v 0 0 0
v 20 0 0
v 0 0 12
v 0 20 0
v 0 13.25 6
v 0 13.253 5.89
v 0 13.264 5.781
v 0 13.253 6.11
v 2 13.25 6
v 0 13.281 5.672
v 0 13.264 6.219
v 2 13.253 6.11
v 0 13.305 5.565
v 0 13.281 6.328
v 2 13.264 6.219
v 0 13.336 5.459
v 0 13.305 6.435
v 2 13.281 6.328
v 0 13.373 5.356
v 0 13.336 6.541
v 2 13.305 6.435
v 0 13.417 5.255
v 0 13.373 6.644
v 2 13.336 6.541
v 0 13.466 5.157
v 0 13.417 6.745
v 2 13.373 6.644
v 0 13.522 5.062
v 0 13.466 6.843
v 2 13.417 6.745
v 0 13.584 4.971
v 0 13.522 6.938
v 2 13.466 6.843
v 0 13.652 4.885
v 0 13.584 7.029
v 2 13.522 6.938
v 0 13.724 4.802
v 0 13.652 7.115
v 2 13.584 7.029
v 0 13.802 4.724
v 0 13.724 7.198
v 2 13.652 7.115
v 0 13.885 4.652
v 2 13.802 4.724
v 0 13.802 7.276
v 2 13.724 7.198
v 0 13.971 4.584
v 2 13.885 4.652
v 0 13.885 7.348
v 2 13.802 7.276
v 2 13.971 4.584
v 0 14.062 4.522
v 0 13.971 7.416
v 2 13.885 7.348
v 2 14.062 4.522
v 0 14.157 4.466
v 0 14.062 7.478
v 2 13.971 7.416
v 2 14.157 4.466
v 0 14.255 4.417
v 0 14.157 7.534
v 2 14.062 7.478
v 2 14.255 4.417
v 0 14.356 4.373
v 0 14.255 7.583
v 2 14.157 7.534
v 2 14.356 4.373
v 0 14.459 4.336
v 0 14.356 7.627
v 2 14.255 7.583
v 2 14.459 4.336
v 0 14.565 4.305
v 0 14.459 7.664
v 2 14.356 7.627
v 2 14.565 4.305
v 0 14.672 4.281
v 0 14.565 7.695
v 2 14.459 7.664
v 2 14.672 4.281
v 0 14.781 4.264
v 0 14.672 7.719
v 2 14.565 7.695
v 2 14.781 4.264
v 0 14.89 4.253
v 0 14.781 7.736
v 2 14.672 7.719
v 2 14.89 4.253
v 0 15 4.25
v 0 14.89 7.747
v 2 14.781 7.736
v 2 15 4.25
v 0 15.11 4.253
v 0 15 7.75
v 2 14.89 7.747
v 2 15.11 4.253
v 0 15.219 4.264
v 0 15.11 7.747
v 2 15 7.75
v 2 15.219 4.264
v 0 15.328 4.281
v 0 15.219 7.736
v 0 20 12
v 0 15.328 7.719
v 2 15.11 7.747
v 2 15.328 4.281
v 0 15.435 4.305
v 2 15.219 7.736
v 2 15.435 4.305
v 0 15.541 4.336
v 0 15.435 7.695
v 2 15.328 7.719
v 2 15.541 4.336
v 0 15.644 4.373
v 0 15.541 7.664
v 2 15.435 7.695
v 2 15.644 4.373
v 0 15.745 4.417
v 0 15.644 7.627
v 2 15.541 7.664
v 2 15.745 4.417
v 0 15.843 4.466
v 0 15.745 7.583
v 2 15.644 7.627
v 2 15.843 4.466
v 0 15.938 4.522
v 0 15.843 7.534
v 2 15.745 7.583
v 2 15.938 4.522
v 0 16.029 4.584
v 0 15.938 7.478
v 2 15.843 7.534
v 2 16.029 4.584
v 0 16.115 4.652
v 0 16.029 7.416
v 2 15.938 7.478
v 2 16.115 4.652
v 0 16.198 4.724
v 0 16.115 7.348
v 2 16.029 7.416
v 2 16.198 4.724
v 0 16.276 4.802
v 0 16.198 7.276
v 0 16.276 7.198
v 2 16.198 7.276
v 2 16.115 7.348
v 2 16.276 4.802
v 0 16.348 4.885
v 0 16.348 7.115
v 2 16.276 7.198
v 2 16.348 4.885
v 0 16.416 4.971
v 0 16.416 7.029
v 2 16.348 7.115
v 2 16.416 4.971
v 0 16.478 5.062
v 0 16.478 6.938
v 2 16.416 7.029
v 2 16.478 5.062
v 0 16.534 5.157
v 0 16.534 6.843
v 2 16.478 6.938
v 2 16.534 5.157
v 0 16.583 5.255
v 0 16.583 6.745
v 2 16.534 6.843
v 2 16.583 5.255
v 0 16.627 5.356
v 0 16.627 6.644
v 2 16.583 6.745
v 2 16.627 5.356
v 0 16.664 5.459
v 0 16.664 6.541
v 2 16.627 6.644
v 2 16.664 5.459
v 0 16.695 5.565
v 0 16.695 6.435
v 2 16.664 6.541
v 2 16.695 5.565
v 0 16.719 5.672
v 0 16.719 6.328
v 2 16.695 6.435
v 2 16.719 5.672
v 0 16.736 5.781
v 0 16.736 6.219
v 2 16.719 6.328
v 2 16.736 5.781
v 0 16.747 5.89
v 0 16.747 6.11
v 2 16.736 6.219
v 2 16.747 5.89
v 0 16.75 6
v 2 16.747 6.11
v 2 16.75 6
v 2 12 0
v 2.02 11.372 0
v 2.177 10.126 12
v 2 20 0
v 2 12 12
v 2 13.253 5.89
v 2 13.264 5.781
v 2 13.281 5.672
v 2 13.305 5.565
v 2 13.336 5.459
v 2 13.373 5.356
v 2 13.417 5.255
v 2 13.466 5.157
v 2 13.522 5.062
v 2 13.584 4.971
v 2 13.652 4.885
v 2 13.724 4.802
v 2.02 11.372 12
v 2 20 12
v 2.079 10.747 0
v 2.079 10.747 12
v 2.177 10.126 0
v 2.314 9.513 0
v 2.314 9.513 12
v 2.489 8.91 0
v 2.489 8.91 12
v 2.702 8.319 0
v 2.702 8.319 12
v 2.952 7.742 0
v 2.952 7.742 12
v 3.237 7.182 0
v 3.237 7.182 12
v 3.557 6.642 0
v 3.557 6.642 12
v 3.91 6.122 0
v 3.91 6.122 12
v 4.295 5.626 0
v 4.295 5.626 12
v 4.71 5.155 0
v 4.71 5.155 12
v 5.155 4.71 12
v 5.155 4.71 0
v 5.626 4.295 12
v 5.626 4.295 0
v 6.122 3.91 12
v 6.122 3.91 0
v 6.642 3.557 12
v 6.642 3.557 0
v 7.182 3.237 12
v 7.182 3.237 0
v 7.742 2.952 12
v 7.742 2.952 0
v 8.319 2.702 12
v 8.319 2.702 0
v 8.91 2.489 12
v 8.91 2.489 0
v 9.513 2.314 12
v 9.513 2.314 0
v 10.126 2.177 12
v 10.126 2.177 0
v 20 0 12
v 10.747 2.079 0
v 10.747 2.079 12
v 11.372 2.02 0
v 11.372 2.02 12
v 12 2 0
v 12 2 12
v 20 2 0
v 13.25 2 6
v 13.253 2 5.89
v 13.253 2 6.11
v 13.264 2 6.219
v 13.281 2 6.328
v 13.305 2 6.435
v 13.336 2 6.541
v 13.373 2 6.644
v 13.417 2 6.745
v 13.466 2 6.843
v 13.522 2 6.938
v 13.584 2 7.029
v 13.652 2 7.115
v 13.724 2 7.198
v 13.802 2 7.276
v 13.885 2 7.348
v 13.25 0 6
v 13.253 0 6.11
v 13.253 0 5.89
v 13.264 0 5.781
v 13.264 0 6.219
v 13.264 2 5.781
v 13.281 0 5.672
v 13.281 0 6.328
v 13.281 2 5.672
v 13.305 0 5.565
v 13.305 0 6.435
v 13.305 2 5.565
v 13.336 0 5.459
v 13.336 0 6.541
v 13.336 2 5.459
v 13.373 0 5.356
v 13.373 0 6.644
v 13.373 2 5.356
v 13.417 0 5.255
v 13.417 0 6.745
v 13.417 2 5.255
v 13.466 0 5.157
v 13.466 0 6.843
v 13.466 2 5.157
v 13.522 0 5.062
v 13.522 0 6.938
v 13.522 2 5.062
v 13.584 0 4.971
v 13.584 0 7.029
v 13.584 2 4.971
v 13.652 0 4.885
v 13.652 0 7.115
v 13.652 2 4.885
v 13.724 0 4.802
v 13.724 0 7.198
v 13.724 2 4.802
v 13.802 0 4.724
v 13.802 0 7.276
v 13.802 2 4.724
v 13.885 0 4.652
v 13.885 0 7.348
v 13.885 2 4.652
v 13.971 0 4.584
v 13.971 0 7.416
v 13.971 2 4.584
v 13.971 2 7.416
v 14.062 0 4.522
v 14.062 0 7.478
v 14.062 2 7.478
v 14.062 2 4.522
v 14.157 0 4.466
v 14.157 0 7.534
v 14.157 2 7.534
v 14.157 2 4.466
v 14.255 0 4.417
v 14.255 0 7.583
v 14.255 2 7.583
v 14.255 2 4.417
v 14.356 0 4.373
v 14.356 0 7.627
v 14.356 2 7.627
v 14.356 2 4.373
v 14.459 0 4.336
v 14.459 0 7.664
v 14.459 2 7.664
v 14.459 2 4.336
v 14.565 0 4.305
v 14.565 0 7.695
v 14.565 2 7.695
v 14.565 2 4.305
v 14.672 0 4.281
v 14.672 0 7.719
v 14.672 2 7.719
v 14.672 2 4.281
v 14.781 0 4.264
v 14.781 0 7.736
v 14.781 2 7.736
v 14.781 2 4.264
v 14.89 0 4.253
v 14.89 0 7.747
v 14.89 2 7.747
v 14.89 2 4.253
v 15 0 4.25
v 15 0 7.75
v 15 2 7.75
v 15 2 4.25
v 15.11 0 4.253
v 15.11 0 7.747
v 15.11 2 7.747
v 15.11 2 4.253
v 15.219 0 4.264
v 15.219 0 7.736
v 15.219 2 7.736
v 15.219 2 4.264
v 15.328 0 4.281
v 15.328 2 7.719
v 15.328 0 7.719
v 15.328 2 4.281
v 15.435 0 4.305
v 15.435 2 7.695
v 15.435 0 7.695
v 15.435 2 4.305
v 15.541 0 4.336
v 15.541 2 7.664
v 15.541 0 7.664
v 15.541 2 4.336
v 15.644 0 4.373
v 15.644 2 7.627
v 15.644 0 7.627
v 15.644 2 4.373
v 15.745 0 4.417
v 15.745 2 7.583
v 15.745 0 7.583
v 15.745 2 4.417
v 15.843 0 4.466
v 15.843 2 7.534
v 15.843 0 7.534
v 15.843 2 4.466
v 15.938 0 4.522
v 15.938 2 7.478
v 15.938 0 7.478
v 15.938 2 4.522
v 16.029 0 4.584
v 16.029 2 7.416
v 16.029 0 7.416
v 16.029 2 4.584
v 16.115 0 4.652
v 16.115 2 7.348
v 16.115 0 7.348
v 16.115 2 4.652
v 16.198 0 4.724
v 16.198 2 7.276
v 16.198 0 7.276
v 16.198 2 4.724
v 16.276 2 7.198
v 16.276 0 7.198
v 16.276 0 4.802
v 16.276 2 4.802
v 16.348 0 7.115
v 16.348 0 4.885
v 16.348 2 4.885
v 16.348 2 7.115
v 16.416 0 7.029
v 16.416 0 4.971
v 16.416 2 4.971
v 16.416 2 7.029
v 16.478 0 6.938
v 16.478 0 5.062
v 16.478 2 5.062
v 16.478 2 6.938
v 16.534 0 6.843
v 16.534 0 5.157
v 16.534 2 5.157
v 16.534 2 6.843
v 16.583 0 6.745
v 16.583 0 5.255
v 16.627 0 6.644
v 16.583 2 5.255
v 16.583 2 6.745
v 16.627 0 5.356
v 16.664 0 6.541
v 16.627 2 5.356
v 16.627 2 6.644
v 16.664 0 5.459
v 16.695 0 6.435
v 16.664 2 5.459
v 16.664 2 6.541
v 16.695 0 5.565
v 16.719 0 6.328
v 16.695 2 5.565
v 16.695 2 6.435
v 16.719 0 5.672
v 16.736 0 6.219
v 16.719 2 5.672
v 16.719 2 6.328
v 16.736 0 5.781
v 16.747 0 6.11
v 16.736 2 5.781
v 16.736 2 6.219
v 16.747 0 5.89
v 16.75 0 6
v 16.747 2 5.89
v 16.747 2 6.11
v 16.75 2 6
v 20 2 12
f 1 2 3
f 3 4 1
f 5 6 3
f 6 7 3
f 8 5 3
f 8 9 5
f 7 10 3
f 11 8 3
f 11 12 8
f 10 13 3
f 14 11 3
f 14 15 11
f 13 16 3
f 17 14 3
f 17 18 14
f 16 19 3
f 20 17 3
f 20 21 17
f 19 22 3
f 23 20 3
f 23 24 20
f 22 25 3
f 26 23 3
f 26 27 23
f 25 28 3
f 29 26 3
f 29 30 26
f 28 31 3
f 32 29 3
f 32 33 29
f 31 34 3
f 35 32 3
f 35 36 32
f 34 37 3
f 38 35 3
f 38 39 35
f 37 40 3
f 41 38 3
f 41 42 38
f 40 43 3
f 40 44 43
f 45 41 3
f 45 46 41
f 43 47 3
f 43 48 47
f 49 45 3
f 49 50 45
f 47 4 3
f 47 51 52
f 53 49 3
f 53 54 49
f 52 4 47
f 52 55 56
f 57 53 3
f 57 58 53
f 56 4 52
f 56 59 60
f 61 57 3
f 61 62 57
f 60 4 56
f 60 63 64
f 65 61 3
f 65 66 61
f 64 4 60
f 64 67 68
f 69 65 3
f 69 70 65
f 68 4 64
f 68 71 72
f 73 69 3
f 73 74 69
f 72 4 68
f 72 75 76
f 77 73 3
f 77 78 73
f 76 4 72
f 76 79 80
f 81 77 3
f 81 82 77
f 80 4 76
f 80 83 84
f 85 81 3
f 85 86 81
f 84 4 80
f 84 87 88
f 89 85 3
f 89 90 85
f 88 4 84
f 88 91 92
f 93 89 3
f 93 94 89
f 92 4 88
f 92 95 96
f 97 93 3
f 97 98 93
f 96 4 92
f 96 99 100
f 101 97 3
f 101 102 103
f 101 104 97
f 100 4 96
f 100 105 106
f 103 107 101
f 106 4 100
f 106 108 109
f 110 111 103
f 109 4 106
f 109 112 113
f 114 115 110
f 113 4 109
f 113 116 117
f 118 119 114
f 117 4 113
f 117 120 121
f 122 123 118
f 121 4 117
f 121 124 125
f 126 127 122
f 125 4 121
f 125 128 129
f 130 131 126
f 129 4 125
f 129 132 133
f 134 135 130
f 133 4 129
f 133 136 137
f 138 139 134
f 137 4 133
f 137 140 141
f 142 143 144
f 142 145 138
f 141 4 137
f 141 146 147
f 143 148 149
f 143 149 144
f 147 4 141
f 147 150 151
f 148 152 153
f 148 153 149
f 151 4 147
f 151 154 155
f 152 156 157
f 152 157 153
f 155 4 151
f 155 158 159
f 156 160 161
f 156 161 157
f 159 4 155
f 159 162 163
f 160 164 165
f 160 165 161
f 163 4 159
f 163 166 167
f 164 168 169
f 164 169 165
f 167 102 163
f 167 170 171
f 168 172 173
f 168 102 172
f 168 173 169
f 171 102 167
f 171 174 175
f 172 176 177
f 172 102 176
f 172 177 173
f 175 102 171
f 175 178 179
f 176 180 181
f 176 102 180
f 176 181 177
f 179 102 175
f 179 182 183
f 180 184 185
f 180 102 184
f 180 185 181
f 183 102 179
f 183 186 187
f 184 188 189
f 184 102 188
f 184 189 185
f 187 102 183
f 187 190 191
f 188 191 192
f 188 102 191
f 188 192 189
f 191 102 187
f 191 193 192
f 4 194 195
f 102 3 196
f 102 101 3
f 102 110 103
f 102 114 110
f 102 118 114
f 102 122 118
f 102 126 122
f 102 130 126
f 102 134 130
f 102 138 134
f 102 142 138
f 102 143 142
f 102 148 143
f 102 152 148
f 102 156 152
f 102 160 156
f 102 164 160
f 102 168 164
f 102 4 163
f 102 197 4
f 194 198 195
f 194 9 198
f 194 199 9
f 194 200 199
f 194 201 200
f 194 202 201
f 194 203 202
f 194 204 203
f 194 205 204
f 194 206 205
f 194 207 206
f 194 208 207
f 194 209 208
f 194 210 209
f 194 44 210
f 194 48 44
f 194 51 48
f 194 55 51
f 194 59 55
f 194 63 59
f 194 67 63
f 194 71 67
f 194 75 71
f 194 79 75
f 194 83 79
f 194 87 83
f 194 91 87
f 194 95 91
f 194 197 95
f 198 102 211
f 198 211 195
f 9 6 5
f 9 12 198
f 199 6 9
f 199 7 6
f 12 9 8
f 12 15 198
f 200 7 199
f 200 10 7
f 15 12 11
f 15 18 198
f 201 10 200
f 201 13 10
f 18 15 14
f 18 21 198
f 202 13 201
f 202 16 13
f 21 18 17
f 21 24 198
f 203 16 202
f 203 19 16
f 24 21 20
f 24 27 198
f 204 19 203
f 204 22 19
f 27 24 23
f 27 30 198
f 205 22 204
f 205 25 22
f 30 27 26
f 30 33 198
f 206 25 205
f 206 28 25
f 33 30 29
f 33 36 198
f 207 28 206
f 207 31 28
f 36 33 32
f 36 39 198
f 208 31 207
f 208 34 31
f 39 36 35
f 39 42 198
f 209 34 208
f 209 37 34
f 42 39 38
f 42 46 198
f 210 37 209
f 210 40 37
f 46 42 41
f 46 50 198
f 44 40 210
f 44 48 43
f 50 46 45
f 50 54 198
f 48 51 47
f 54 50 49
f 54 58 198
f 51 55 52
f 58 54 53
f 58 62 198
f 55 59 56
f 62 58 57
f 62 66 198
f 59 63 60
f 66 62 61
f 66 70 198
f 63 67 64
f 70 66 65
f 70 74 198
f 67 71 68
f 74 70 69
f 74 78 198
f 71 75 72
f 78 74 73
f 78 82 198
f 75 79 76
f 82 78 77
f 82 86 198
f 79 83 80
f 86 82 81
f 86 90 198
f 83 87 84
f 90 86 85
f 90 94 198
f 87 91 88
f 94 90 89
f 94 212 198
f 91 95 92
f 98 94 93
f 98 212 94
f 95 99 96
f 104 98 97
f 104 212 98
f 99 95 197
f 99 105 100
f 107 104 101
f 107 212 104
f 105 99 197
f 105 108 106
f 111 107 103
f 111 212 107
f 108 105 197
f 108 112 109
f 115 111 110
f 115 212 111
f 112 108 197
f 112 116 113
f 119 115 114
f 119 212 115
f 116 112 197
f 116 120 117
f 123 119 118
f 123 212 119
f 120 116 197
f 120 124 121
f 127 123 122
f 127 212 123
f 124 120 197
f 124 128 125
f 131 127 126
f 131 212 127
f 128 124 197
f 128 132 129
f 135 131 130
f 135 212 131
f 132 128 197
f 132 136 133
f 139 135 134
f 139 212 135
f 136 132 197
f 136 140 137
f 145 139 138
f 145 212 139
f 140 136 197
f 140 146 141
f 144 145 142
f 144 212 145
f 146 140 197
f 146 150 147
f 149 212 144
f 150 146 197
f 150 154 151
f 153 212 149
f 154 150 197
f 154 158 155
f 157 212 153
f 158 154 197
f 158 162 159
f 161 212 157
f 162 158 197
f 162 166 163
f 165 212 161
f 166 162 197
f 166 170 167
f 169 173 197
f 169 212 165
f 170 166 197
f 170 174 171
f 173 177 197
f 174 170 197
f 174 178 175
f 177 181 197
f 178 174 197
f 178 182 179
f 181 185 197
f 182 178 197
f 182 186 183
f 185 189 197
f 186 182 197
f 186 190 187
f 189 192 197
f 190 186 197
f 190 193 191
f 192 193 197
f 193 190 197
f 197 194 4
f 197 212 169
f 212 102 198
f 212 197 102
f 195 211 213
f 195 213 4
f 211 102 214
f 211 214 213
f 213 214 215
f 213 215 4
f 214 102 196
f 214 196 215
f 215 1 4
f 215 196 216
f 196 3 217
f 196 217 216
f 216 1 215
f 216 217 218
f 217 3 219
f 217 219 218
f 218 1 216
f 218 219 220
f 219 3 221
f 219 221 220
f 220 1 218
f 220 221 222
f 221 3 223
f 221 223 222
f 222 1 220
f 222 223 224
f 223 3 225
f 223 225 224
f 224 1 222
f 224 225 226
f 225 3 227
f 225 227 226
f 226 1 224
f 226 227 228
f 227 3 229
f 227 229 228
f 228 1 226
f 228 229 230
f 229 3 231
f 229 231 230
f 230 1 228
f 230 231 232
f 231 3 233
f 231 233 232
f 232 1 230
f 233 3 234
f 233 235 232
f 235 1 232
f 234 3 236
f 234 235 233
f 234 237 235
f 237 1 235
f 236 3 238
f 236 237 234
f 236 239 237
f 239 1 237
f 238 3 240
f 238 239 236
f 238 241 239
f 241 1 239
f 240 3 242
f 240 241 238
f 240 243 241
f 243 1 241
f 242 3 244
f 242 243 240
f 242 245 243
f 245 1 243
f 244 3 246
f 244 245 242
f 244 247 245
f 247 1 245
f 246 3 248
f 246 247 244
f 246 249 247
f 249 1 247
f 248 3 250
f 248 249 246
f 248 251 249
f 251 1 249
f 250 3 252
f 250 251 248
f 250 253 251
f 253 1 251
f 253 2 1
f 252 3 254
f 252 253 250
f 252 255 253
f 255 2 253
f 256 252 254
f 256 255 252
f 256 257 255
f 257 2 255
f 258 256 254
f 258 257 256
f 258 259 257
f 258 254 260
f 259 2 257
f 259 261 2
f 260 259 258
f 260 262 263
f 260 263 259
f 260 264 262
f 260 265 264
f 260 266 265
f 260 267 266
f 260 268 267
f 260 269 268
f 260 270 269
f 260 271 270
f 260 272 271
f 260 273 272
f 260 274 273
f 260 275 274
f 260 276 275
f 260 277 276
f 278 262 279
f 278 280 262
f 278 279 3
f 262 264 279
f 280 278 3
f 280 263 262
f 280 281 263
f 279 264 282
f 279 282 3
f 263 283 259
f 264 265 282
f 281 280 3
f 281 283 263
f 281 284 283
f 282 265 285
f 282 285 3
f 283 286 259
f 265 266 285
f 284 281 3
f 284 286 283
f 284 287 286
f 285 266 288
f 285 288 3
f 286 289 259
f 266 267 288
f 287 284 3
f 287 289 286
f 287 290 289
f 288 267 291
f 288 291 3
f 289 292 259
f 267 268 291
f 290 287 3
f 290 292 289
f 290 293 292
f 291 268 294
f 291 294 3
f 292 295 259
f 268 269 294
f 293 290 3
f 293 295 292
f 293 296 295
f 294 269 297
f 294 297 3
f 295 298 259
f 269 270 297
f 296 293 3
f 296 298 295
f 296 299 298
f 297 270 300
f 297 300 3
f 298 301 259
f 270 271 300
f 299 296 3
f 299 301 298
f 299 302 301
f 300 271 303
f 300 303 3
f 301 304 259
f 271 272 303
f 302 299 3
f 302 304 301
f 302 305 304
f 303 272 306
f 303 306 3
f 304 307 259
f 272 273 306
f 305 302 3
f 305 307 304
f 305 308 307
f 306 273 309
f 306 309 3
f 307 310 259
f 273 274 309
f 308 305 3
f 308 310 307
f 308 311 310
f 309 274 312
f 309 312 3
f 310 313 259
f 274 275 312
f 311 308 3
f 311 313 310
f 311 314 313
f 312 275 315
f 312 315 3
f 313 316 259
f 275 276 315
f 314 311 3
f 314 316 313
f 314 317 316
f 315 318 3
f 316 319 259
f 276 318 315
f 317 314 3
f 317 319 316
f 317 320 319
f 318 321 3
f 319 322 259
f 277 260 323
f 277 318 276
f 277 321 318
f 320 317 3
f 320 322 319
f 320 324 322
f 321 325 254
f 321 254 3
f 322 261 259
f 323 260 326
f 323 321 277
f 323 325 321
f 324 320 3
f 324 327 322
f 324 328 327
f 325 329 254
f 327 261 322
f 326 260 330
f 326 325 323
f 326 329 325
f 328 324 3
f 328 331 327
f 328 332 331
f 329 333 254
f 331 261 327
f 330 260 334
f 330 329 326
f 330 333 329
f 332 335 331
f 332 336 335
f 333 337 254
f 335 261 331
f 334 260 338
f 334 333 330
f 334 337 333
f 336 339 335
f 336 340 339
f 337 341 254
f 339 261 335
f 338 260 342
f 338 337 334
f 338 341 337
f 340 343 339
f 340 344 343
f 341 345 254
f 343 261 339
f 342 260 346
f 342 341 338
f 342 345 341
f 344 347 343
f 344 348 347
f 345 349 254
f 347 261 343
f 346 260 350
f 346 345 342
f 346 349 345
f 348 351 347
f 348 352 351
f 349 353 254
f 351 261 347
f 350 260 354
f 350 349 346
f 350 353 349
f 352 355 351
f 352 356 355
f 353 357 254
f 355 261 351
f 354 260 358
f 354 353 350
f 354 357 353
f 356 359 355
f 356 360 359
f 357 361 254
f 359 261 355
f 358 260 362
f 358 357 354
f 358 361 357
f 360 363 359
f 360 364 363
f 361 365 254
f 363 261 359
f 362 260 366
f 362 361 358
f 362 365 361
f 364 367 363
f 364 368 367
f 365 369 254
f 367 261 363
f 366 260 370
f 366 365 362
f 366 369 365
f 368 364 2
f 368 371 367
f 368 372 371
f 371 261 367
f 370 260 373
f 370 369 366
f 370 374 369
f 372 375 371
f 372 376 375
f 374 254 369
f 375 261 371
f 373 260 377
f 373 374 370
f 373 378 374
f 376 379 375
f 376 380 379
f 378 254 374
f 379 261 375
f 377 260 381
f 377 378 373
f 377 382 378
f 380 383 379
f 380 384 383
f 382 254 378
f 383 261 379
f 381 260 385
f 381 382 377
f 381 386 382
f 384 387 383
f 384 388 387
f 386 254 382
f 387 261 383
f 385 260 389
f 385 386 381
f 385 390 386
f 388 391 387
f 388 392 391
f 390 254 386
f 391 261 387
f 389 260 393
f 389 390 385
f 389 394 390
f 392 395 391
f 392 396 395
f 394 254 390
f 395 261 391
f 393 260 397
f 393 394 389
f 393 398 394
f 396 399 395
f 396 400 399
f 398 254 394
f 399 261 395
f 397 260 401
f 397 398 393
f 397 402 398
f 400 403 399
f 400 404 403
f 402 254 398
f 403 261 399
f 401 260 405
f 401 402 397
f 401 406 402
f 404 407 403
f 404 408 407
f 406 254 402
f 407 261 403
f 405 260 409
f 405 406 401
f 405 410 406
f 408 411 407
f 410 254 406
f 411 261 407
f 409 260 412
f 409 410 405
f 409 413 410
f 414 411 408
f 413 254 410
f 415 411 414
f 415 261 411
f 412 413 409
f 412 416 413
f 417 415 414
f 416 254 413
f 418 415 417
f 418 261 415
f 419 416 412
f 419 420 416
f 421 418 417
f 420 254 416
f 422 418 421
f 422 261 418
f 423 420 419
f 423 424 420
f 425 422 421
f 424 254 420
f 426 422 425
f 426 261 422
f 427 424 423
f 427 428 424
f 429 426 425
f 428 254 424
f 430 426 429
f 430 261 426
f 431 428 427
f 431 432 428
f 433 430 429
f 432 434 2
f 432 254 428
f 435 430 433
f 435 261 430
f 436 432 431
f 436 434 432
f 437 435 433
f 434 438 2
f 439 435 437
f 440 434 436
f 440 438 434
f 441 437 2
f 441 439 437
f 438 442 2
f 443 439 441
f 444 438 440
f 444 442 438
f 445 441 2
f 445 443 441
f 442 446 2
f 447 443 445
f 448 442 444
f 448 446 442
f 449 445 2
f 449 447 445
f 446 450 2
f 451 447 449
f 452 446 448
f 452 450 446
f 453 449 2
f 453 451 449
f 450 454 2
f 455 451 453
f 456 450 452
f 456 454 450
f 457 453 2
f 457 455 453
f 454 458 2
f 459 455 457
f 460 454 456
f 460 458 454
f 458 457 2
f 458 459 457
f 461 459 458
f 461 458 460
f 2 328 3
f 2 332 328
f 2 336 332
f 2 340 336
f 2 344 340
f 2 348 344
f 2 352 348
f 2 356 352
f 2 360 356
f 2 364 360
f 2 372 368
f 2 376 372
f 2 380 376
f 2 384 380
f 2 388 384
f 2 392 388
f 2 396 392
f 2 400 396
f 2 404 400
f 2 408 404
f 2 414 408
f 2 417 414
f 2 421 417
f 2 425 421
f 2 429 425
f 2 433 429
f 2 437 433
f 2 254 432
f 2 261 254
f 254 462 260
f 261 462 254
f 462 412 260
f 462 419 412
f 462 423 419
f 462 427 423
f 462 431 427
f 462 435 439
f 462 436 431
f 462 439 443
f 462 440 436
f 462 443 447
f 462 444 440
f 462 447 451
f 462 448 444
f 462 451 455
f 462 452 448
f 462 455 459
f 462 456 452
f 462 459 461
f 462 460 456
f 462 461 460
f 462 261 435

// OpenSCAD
length=20;
width=12;
wall=2;
hole=3.5;

$fn=100;

difference() {
  linear_extrude(width) x_sec();
  for (r=[0,90])
    rotate(r) translate([3*length/4,0,width/2]) rotate([90,0,0]) cylinder(wall*3,d=hole,center=true);
}

module x_sec() {
  difference() {
    union() {
      square([length/2+wall,length/2+wall]);
      translate([length/2,0]) square([length/2,wall]);
      translate([0,length/2]) square([wall,length/2]);
    }
    translate([length/2+wall,length/2+wall]) circle(length/2);
  }
}
